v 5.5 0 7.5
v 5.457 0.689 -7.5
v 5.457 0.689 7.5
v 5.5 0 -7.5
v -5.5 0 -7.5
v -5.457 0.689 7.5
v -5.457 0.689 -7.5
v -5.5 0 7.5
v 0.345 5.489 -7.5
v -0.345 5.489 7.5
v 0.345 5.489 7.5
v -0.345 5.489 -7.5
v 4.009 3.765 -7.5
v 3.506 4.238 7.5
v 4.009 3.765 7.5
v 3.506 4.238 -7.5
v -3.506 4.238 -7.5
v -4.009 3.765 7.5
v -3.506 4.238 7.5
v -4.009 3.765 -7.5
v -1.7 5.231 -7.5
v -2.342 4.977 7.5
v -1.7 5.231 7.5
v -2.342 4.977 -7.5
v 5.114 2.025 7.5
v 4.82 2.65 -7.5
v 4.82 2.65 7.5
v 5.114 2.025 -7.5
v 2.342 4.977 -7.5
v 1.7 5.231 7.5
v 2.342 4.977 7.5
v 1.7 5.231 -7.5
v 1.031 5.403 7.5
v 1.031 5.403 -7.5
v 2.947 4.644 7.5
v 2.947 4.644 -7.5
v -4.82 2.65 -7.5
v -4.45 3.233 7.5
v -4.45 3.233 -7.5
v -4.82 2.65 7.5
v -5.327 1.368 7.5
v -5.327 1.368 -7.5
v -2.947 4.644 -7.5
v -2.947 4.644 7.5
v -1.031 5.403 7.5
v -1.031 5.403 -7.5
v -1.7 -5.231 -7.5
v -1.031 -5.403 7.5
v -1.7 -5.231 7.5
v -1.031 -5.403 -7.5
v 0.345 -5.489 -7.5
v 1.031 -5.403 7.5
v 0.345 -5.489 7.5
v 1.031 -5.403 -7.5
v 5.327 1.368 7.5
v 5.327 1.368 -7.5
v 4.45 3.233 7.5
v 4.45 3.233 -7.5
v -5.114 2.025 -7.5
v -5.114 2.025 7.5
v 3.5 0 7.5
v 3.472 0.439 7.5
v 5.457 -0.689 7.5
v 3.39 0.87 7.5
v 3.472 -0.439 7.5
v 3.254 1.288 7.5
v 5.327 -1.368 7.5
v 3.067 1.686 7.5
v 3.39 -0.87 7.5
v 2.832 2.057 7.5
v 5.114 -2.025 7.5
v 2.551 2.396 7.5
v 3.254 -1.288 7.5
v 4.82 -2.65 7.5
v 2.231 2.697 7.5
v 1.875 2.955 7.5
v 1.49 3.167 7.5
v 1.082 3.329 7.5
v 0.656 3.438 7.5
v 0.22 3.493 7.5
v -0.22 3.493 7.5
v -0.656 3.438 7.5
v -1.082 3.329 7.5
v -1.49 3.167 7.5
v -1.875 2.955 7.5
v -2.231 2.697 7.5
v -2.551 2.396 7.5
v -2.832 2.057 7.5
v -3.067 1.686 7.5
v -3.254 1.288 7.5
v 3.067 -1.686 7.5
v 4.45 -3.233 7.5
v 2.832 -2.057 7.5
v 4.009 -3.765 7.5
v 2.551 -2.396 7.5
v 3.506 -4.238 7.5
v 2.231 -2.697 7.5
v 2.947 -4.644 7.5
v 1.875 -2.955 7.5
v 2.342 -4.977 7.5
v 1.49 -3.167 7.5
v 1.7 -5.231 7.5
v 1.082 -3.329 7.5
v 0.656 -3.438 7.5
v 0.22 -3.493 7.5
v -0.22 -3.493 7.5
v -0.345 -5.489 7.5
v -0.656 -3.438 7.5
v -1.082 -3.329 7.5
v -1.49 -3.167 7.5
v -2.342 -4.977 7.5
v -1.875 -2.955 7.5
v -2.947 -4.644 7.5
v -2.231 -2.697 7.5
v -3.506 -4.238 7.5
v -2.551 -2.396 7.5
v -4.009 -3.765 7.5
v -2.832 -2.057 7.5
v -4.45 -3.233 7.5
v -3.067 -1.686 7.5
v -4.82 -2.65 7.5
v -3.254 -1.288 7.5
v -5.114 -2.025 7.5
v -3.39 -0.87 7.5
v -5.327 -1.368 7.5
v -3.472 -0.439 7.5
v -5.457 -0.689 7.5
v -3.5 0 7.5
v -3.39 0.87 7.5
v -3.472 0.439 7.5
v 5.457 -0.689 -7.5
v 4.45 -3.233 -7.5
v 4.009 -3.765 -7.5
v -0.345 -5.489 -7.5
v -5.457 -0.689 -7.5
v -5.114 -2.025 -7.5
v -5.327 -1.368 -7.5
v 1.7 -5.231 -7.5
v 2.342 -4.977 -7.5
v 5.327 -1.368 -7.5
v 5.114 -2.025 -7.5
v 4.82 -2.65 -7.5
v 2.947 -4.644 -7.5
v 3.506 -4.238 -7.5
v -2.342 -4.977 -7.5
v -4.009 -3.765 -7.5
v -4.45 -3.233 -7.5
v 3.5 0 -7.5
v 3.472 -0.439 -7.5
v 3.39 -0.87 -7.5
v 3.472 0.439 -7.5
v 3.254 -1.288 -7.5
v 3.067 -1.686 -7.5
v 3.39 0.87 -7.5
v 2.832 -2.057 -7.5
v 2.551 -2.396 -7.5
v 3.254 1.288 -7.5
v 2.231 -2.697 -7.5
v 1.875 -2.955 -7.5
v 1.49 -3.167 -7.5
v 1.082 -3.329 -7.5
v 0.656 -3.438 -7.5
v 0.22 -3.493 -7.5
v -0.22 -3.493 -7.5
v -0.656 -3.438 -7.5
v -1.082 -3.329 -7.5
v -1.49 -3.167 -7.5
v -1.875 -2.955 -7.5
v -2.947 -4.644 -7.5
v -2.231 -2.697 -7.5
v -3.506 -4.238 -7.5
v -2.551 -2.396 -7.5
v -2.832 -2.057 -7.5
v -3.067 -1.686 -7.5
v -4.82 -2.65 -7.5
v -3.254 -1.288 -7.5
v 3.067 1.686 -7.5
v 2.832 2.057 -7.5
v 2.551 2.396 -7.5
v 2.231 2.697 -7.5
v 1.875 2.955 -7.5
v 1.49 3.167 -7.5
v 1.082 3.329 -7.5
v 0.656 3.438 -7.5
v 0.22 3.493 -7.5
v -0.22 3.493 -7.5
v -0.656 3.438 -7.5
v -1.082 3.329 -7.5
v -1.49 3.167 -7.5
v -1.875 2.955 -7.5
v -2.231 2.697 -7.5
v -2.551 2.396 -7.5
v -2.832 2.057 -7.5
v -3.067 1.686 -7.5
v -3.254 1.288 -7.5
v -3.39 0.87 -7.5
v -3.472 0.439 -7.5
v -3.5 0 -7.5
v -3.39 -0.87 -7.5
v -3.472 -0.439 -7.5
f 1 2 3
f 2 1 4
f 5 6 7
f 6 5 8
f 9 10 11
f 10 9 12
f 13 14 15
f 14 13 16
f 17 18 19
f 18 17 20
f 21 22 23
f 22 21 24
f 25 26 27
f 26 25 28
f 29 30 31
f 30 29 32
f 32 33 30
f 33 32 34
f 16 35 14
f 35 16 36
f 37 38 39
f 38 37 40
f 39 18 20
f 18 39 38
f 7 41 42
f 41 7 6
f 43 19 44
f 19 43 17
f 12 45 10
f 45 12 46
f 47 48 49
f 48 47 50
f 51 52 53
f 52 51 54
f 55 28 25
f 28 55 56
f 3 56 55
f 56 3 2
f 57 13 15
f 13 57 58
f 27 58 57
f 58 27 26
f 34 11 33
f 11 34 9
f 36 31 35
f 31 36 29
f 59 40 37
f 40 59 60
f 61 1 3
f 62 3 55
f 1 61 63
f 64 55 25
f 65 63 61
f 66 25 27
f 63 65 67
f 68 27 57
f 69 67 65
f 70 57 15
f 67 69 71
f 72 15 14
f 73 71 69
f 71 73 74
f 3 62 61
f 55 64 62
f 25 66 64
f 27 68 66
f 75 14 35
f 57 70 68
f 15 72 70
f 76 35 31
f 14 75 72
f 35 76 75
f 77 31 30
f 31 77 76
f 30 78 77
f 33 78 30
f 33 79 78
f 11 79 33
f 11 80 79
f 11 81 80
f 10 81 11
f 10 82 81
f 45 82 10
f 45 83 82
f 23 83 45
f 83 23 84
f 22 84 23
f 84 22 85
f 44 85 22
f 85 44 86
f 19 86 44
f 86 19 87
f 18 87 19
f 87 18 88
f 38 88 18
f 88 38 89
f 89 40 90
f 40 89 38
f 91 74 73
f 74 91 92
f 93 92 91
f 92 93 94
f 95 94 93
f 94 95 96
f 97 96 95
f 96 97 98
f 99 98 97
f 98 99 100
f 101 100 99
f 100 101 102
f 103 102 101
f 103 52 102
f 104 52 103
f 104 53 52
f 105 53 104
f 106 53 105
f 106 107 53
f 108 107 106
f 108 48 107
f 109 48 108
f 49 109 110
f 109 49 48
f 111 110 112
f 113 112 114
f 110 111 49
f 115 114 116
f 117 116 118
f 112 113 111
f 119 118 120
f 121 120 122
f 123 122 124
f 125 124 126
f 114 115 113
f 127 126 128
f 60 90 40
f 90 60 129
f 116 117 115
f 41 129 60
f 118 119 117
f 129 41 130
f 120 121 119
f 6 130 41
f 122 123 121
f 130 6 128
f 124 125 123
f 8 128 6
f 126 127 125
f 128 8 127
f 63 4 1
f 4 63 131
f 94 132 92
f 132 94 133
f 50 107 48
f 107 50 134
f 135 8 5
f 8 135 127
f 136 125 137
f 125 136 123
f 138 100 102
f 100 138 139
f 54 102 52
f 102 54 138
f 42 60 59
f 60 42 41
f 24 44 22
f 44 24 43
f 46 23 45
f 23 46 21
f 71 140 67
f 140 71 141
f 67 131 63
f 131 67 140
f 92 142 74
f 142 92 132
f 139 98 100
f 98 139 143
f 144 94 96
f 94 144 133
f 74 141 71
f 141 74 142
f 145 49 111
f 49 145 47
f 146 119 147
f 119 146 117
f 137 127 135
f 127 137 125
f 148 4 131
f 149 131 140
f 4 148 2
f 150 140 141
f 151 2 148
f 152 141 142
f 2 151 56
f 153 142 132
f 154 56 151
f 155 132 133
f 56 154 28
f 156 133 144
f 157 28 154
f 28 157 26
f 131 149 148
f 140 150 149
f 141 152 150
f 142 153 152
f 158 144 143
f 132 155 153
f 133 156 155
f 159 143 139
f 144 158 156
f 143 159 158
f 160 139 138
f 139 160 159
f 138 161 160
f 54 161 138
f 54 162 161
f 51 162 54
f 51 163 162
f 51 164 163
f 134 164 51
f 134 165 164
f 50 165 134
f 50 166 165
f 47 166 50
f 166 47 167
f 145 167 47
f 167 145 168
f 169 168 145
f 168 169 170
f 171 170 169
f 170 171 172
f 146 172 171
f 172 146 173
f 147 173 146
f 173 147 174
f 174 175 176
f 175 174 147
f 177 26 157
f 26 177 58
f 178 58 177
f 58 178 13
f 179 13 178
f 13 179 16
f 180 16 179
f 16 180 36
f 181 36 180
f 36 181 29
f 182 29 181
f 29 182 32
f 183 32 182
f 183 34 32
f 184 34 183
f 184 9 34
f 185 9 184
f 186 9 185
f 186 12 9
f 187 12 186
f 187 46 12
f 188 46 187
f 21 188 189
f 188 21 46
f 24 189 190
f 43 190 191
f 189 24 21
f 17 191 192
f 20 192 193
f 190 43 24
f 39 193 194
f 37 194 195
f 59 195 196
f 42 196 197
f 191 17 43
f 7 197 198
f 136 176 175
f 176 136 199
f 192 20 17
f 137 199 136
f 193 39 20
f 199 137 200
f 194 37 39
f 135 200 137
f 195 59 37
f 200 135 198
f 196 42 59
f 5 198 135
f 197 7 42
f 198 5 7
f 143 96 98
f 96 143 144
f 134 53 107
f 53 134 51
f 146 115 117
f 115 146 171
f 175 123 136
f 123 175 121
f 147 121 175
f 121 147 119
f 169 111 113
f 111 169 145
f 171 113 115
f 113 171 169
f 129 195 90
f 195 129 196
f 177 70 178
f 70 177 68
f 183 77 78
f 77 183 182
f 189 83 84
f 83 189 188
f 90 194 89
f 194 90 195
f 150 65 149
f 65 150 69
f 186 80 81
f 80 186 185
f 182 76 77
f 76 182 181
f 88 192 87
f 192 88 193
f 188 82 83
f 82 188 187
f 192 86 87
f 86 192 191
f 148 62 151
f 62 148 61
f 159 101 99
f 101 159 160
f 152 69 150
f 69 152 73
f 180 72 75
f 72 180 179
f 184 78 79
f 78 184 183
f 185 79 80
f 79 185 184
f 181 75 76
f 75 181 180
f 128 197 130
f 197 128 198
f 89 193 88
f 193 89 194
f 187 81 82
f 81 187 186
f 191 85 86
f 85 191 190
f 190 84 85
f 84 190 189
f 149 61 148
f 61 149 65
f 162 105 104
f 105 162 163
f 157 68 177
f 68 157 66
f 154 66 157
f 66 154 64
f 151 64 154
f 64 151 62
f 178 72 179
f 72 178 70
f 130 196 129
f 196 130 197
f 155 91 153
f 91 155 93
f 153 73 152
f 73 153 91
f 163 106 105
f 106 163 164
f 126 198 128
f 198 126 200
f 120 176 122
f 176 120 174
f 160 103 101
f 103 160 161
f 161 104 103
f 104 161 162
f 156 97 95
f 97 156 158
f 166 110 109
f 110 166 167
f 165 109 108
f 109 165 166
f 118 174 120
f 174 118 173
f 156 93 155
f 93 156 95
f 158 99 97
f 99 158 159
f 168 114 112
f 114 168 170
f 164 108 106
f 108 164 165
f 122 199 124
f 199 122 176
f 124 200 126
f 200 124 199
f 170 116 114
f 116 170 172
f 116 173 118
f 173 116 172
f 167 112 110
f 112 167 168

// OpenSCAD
$fn = 50;


difference() {
	union() {
		translate(v = [0, 0, -7.5000000000]) {
			cylinder(h = 15, r = 5.5000000000);
		}
	}
	union() {
		translate(v = [0, 0, -100.0000000000]) {
			cylinder(h = 200, r = 3.5000000000);
		}
	}
}
